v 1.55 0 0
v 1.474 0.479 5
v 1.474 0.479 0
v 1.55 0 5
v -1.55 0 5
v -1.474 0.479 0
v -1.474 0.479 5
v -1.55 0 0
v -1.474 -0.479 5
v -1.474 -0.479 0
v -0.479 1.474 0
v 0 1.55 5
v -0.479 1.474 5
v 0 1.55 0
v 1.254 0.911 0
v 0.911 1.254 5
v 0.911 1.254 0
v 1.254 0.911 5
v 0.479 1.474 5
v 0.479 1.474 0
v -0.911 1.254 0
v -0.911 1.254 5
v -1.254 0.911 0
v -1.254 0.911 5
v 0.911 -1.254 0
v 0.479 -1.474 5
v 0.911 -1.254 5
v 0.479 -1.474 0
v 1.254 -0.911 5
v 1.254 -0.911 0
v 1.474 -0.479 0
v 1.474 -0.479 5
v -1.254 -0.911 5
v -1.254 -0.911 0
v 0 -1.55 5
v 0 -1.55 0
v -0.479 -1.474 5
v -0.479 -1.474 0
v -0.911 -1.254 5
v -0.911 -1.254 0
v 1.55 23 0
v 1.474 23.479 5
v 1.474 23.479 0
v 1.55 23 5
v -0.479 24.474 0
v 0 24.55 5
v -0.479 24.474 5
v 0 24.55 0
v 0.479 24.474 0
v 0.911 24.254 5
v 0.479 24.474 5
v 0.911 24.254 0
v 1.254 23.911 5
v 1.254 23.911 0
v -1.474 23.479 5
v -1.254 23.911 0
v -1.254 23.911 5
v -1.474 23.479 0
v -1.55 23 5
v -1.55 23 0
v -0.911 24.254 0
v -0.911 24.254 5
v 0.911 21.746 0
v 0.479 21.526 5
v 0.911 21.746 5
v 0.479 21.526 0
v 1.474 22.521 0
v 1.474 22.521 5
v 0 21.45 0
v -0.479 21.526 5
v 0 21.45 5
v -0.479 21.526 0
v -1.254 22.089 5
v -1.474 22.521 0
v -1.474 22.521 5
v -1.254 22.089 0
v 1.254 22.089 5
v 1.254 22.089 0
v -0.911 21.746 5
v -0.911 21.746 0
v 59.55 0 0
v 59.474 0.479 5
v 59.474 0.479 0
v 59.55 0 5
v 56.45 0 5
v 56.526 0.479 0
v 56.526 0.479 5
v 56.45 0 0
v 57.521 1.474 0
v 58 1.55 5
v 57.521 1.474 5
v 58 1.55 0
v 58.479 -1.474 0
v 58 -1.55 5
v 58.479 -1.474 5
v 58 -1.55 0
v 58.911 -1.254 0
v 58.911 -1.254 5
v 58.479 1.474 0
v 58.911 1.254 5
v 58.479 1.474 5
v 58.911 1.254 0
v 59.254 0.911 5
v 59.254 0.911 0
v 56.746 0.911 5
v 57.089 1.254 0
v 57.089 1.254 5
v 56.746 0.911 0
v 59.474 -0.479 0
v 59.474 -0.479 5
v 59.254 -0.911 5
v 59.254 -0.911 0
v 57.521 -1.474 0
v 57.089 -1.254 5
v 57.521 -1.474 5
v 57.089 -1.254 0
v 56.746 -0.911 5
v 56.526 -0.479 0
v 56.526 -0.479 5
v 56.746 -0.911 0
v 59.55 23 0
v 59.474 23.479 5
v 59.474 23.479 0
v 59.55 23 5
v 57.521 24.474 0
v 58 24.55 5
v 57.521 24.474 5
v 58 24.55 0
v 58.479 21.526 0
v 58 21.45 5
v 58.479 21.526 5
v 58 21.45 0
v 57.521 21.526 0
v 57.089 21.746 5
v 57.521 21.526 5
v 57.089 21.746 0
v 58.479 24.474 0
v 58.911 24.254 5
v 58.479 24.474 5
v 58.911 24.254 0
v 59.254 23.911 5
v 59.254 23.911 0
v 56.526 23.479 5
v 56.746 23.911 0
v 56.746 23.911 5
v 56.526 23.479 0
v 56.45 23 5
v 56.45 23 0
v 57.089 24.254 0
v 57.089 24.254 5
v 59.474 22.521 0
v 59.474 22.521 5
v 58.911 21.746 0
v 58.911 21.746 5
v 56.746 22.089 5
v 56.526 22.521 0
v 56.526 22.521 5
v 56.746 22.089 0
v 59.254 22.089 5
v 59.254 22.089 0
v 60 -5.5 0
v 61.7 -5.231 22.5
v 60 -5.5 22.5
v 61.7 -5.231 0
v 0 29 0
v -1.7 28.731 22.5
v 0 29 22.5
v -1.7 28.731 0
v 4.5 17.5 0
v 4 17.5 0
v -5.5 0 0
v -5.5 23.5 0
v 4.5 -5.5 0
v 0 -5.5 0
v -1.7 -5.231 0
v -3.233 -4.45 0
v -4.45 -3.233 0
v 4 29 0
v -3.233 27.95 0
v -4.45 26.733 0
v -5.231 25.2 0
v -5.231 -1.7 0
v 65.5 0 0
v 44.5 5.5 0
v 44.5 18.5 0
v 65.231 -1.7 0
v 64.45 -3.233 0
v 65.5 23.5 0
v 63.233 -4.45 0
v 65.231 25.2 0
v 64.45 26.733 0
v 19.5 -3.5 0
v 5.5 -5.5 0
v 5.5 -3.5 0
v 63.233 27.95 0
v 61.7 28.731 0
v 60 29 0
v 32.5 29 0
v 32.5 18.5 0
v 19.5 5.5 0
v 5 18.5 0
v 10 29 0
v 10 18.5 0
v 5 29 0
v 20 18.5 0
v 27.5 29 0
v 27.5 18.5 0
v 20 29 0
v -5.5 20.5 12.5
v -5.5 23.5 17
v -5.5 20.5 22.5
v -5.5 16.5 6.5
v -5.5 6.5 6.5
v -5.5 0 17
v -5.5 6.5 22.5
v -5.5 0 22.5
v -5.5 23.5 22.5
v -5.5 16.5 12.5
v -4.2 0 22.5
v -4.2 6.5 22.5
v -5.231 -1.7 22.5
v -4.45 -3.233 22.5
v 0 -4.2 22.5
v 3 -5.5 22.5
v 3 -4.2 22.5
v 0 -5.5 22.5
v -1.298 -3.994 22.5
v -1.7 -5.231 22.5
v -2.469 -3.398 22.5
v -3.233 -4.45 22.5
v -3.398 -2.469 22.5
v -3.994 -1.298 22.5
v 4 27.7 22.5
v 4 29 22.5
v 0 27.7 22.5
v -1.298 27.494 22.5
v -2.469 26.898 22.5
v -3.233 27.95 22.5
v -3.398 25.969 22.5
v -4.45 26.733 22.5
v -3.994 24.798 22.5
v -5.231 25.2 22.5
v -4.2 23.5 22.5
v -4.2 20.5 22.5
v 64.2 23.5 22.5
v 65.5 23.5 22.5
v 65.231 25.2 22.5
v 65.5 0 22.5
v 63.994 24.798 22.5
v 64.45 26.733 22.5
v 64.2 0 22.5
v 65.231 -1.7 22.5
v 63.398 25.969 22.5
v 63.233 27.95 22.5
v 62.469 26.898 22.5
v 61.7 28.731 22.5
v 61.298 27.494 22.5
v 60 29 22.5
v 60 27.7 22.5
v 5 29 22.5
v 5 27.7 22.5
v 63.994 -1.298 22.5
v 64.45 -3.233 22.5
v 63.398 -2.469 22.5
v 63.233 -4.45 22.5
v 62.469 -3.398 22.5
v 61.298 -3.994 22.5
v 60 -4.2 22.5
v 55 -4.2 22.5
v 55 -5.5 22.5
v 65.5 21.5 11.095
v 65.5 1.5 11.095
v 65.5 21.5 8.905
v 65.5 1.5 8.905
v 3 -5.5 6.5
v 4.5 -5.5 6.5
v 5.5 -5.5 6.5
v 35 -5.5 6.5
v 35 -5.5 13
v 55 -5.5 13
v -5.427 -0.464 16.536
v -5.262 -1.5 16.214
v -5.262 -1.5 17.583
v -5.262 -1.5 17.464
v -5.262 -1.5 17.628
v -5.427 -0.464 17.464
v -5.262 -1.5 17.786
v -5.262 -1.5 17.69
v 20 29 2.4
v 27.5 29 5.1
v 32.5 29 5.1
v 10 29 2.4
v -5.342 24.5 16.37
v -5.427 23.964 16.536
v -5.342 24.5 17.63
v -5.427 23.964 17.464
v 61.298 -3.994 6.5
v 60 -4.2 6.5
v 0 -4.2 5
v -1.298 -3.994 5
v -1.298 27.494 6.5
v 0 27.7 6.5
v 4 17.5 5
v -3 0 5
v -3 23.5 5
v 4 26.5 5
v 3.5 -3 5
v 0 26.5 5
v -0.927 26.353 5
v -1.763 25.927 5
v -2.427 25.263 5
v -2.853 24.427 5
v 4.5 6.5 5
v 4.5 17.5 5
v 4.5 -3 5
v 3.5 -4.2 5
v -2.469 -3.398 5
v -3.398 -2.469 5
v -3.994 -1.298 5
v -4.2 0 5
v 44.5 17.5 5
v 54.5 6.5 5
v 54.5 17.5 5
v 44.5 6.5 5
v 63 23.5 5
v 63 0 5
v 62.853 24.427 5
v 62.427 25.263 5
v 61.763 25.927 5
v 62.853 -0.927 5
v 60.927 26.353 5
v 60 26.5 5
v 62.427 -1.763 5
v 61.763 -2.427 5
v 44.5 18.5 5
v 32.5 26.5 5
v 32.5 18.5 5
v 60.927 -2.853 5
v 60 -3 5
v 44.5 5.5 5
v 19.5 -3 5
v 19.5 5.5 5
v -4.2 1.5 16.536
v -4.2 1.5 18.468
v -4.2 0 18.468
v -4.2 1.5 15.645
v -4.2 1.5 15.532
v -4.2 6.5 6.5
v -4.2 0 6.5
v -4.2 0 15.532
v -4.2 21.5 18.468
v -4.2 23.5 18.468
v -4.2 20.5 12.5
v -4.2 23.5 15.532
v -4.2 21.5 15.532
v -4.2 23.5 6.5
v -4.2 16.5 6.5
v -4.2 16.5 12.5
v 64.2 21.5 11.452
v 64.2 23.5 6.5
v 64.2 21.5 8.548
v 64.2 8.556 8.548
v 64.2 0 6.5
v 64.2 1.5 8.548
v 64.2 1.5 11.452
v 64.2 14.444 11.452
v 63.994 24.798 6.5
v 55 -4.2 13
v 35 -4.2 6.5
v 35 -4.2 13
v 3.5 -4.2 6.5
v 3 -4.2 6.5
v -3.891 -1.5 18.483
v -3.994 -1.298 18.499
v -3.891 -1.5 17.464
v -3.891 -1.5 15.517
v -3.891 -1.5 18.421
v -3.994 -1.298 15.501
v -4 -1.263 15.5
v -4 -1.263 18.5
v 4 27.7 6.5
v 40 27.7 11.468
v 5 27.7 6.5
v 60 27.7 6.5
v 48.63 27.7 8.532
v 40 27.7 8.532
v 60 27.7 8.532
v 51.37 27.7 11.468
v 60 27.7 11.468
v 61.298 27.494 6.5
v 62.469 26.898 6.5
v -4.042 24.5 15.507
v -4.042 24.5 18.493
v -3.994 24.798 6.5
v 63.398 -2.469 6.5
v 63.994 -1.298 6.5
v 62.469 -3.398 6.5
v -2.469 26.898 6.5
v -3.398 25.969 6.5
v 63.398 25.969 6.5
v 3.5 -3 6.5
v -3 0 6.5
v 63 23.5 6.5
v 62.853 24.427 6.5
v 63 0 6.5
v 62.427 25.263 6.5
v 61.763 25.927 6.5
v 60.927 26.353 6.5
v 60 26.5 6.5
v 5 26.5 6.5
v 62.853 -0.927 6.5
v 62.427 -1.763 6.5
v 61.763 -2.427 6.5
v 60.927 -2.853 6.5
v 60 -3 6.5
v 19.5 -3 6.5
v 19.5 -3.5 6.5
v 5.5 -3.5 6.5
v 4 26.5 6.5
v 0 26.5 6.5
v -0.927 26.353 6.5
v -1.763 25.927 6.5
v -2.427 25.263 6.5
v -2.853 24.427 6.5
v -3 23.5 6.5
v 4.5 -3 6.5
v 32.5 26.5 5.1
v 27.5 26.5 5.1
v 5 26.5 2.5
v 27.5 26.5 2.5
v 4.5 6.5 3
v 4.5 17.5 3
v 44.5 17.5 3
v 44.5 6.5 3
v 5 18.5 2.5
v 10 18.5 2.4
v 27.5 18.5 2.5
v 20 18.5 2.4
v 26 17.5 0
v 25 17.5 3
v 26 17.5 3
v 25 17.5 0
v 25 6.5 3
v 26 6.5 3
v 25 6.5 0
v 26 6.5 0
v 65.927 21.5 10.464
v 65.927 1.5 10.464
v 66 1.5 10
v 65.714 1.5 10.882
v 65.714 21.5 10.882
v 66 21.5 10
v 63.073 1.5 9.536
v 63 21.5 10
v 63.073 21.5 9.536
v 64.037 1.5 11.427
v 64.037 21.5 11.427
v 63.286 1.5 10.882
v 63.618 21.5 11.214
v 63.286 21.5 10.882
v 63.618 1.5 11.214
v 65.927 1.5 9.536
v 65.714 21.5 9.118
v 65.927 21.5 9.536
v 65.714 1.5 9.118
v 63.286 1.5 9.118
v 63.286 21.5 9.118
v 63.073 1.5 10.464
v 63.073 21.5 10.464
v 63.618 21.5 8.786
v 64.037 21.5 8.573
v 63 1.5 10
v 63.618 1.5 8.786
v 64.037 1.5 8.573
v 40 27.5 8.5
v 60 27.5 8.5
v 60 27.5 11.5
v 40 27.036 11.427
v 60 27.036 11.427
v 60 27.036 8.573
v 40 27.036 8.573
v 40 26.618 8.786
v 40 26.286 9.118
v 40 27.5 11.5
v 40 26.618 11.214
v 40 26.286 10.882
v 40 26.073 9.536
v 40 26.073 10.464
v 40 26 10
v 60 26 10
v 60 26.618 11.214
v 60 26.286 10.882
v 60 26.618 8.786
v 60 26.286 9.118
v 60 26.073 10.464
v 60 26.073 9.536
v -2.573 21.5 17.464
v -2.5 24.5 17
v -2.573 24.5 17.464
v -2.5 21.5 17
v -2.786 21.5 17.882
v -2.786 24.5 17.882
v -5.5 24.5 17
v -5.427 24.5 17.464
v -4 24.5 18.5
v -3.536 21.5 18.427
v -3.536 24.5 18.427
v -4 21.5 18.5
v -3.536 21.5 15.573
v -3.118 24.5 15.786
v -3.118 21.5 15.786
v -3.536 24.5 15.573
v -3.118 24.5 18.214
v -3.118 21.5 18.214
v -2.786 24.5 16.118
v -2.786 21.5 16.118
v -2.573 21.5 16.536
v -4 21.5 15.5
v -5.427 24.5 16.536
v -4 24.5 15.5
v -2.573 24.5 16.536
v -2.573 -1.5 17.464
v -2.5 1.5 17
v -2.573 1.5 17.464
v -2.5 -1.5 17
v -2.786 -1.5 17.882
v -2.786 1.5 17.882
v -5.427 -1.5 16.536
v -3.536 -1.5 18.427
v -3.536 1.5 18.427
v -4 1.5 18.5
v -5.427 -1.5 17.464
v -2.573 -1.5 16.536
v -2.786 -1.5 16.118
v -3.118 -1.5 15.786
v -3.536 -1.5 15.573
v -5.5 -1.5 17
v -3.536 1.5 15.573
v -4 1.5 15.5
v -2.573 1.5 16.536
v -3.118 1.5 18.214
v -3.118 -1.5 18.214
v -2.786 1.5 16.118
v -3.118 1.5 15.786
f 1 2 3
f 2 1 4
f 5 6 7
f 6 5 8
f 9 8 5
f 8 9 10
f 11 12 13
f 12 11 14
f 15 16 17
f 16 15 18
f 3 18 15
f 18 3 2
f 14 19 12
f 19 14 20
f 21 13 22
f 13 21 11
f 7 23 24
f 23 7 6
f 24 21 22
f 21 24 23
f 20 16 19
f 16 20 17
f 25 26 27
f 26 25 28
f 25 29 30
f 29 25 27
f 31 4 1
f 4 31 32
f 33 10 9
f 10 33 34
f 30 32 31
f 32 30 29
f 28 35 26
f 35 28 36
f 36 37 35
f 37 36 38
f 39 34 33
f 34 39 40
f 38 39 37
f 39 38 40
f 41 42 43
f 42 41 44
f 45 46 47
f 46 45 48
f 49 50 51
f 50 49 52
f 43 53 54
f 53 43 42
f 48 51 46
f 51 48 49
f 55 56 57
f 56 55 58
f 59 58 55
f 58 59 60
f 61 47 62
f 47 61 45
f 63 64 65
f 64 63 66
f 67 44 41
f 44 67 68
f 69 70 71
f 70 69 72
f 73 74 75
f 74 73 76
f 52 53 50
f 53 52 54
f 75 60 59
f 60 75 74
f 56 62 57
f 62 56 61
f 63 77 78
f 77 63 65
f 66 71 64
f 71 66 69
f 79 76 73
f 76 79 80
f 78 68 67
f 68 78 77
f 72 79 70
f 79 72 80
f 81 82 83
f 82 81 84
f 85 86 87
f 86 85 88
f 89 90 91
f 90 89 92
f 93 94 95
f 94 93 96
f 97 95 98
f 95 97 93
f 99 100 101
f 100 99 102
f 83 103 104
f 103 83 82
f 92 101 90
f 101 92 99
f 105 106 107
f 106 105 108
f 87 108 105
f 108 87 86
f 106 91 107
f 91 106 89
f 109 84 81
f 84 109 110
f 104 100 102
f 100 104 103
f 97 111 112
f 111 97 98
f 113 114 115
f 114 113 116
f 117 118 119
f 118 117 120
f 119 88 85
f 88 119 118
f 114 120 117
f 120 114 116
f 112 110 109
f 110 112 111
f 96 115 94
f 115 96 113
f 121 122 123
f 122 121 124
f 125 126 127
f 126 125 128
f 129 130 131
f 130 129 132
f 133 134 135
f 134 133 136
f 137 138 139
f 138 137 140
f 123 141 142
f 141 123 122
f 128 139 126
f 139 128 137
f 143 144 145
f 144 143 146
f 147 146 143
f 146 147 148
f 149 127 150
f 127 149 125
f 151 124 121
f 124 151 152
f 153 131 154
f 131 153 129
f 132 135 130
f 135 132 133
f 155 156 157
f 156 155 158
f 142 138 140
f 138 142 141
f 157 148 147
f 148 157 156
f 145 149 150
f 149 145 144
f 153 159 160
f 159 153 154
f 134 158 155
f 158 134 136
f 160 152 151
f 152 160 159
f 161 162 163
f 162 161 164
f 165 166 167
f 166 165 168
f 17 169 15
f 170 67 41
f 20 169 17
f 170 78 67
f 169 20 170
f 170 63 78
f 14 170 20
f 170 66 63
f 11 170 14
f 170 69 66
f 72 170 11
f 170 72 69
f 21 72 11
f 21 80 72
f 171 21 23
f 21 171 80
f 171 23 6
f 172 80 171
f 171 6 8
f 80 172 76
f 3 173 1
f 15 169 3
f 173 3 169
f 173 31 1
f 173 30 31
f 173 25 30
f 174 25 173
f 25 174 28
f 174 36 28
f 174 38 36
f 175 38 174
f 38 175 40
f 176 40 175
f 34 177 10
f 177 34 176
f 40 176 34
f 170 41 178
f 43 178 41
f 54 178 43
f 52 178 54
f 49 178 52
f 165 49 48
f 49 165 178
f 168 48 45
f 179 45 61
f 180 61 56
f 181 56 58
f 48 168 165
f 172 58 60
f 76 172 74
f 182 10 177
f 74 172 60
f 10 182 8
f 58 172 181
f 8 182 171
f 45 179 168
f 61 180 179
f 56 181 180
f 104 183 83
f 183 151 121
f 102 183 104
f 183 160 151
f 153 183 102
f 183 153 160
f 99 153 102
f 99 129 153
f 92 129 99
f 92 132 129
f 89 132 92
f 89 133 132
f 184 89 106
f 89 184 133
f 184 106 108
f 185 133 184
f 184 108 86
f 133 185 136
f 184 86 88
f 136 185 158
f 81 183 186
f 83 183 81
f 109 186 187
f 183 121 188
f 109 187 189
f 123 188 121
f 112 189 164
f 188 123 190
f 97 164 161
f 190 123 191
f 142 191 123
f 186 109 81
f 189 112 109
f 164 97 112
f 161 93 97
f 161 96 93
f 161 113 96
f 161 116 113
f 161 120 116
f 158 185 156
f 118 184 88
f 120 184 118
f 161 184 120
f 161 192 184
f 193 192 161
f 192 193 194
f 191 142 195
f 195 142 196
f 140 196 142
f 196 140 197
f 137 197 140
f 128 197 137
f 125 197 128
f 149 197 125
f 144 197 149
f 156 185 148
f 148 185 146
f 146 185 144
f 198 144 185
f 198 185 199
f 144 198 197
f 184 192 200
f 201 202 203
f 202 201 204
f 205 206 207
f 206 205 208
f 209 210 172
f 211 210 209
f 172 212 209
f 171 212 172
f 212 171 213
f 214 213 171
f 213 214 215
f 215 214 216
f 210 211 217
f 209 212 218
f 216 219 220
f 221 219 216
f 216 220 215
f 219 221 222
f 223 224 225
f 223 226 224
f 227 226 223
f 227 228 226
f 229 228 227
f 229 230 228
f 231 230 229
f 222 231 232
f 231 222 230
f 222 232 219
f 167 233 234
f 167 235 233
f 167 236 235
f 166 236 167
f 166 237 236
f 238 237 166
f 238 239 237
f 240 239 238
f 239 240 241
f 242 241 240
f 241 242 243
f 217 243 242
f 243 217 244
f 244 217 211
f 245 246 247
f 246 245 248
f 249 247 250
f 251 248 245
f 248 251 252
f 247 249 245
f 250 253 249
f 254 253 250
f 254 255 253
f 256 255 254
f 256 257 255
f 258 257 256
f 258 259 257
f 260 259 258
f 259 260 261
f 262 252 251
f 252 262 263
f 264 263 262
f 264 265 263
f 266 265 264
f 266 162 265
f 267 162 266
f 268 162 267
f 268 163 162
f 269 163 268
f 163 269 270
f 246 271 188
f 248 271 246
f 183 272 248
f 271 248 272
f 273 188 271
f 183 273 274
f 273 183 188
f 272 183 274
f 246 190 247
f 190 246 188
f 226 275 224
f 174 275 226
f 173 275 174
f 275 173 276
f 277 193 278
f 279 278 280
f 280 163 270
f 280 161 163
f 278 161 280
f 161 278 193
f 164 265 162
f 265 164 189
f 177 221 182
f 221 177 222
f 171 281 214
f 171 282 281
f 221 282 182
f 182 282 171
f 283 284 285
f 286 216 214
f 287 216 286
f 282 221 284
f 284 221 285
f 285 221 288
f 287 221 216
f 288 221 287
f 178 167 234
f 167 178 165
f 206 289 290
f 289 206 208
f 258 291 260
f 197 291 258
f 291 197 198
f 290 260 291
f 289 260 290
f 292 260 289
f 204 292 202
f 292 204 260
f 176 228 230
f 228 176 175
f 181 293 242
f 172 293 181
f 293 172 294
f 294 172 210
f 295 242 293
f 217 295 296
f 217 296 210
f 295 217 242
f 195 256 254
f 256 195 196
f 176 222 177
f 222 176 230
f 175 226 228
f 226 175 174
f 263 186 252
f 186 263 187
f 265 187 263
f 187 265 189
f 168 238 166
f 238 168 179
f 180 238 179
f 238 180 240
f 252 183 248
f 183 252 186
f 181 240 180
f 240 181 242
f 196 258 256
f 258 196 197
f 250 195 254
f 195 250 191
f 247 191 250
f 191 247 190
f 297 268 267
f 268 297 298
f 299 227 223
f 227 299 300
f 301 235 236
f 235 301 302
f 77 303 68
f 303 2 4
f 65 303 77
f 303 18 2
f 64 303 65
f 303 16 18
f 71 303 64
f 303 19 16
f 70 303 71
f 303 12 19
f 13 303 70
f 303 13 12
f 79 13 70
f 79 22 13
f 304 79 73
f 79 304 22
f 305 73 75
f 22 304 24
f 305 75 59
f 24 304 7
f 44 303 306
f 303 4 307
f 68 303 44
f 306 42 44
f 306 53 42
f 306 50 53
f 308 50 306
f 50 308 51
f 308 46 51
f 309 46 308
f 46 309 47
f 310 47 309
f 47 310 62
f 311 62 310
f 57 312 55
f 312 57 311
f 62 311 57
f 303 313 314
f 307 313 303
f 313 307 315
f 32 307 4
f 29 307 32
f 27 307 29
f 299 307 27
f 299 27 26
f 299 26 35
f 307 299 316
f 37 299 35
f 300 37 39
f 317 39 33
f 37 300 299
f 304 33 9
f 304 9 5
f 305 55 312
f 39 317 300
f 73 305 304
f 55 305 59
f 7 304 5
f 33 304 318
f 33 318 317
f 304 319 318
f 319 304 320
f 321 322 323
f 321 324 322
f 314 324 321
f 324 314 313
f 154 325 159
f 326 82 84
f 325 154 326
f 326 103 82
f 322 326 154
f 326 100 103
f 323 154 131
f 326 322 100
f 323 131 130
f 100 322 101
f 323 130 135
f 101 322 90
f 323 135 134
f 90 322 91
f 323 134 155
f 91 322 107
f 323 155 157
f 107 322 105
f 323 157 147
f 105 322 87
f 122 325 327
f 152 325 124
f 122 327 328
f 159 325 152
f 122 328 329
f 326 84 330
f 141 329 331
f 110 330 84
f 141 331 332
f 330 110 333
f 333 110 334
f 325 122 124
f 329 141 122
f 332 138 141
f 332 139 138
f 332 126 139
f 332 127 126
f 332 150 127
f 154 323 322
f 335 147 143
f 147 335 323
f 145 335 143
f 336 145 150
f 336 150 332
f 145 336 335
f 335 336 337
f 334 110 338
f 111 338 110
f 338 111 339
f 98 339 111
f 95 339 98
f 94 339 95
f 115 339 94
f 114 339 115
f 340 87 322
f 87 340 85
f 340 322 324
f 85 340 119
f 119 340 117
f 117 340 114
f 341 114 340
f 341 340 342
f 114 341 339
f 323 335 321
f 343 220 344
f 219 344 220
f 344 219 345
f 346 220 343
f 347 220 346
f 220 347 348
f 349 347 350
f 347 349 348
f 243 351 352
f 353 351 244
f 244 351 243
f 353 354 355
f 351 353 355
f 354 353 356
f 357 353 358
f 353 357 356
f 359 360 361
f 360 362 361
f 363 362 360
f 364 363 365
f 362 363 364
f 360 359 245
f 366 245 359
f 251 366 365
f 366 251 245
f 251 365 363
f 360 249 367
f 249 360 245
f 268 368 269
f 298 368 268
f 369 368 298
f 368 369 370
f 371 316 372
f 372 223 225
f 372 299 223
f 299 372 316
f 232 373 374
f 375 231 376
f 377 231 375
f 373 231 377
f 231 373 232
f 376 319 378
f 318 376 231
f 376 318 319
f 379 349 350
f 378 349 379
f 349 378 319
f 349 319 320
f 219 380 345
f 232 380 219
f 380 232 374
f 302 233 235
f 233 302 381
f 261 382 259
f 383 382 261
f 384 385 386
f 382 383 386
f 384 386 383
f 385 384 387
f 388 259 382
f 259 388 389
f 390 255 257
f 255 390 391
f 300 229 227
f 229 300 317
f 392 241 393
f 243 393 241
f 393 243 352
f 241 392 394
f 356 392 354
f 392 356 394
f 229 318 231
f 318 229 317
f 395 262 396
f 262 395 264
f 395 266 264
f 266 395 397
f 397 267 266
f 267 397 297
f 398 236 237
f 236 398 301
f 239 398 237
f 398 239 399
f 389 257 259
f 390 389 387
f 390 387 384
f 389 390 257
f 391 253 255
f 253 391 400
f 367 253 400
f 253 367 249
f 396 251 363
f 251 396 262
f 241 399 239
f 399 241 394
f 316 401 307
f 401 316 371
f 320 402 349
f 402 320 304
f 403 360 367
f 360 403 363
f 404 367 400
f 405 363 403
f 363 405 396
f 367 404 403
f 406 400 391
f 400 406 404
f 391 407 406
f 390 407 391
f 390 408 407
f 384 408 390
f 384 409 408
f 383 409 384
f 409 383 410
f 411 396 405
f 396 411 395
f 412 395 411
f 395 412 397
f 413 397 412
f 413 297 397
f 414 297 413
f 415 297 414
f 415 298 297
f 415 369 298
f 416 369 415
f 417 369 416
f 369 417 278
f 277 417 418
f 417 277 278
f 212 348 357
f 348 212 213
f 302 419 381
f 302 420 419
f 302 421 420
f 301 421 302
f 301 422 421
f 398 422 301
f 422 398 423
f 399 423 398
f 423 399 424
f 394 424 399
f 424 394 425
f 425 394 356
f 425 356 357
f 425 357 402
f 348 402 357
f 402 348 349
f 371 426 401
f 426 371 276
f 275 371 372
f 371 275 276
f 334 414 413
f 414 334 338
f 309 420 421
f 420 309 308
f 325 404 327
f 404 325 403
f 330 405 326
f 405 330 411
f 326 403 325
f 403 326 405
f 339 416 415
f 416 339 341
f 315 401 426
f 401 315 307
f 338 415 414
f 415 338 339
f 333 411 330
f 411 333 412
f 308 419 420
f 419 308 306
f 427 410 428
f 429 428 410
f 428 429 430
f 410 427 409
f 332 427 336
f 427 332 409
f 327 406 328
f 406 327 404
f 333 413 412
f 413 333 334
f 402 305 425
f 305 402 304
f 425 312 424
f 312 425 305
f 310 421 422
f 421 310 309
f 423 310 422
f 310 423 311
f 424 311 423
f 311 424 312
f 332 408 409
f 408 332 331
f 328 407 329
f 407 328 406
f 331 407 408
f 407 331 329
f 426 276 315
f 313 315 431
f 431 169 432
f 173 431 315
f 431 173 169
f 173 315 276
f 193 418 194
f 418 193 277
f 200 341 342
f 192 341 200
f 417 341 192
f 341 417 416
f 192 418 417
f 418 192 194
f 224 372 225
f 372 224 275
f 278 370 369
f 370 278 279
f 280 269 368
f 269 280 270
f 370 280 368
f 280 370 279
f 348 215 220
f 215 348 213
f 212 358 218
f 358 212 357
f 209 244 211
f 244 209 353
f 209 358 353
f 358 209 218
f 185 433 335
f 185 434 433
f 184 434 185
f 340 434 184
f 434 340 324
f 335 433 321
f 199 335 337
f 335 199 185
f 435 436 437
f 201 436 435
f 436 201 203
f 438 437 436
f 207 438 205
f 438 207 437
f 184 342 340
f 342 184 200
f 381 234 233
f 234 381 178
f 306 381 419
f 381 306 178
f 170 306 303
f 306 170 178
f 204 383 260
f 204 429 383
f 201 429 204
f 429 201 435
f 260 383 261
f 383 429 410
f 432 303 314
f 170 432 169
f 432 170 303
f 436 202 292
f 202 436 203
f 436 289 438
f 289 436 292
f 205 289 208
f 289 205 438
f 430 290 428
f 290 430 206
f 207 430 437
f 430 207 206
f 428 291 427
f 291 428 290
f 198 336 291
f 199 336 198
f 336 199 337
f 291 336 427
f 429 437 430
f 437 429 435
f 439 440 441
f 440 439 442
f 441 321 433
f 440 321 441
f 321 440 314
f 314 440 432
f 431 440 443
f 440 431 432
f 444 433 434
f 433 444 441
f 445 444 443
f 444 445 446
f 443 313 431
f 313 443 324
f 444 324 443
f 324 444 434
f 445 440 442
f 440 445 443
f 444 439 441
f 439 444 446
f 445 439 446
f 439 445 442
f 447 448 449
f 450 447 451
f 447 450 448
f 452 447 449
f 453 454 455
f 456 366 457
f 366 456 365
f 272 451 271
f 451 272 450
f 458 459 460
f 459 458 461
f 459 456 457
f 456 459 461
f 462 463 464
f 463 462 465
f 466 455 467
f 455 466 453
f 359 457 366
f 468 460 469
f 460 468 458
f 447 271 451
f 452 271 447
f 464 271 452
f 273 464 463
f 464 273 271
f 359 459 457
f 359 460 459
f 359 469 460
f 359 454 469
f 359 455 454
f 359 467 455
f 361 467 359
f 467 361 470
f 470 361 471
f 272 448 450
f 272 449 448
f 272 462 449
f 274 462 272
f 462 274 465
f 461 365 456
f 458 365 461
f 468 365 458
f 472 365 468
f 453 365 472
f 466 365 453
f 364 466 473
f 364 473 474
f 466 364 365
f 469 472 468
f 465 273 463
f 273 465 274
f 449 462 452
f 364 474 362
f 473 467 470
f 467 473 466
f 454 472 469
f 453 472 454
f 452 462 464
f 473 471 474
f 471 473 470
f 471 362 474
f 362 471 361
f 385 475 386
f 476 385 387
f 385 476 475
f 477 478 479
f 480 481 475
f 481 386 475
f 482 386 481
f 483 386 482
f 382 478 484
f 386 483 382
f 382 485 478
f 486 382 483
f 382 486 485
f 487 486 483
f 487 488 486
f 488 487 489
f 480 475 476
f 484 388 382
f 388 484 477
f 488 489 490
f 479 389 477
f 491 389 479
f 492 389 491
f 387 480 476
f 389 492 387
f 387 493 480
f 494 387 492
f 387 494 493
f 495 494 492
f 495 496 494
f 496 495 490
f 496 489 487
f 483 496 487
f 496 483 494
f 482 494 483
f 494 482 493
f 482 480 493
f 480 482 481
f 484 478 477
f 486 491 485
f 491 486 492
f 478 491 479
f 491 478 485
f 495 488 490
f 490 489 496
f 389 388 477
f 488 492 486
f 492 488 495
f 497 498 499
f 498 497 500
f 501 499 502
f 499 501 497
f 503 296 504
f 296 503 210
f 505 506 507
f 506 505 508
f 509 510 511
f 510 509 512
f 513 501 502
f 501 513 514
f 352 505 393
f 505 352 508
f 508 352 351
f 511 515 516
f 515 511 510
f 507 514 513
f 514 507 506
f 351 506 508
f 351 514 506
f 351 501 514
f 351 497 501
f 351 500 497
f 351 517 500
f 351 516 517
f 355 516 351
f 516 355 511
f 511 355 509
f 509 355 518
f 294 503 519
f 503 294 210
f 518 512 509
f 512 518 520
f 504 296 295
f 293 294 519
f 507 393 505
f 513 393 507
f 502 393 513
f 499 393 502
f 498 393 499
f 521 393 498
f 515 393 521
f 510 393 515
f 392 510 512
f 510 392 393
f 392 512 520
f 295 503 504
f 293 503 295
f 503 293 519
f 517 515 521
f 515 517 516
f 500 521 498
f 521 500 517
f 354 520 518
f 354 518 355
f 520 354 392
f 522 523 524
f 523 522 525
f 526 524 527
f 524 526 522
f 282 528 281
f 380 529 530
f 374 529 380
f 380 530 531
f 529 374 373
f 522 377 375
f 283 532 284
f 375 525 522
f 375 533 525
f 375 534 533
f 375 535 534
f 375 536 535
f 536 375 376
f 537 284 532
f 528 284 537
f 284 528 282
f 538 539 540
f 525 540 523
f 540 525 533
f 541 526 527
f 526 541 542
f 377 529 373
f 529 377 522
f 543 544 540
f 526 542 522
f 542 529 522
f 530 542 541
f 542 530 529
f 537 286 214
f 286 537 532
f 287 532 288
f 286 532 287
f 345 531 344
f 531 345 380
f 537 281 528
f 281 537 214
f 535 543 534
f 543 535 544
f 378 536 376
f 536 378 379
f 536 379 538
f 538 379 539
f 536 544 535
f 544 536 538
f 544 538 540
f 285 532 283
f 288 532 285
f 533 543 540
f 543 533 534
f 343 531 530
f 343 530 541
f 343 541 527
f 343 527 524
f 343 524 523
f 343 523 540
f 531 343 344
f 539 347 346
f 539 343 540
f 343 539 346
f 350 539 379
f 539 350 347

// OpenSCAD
$fn=20;
// Openscad Raspberry Pi Zero W Test Controller Top (Programmer)
// Author: Brian Khuu 2019
// Note: Dimentions based on https://blog.protoneer.co.nz/raspberry-pi-zero-footprint-dimensions/

module rpi_zero_bulk(h_mm, outset, cutout = false)
{
  header_tol = 1;
  hole_tol = 0.1;

  difference()
  {
    union()
    {
      hull()
      {
        translate([0,0,0])
          cylinder(r=3.5+outset,h=h_mm);
        translate([0,23.5,0])
          cylinder(r=3.5+outset,h=h_mm);
        translate([58+2,0,0])
          cylinder(r=3.5+outset,h=h_mm);
        translate([58+2,23.5,0])
          cylinder(r=3.5+outset,h=h_mm);
      }
    }

    if (cutout)
    {
        // M3 holes = 2.75
        holedia = 3+hole_tol;
        
        // Header
        //translate([29,23,+h_mm/2])
        //  cube([51+header_tol,5+header_tol,h_mm+0.1], center=true);
        
        // Holes
        translate([0,0,-1])
          cylinder(r=((holedia)/2),h=h_mm+2);
        translate([0,23,-1])
          cylinder(r=((holedia)/2),h=h_mm+2);
        translate([58,0,-1])
          cylinder(r=((holedia)/2),h=h_mm+2);
        translate([58,23,-1])
          cylinder(r=((holedia)/2),h=h_mm+2);
    }
  }
}

module rpi_zero_hat_case()
{
  base_mm = 5;
  side_wall_mm = 16;
    
  pcb_h = 2;
  pcb_standoff = 1.5;
  
    // align hole
    if (0)
    {
        translate([0,0,base_mm])
        {
            xhole_tol = -0.9;
            xh_mm = 3;
            xdia = 1.8;
            translate([0,0,-1])
              cylinder(r=((xdia)/2),h=xh_mm+2);
            translate([0,23,-1])
              cylinder(r=((xdia)/2),h=xh_mm+2);
            translate([58,0,-1])
              cylinder(r=((xdia)/2),h=xh_mm+2);
            translate([58,23,-1])
              cylinder(r=((xdia)/2),h=xh_mm+2);
        }
    }

  difference()
  {
    rpi_zero_bulk(base_mm+pcb_standoff+side_wall_mm, 2, true); // Main Bulk
    
    translate([0,0,base_mm+pcb_standoff]) 
      rpi_zero_bulk(side_wall_mm+4, 0.7); // Inner Hollow For Electronics
    
    // pcb ledge
    translate([0,0,base_mm]) 
      rpi_zero_bulk(side_wall_mm+4, -0.5);
    difference()
    {
        translate([0,0,base_mm]) 
          rpi_zero_bulk(side_wall_mm+4, 0.7); // Inner Hollow For Electronics
        translate([3.5,-50,-0.1])
          cube([100,100,20]);
        translate([-10,-0,-0.1])
          cube([100,50,20]);
    }
      
      
    // Programmer Wire
    translate([5,0,5])
      cube([1,12,2*base_mm+0.4], center=true);
    translate([12,1.5,5])
      cube([15,10,2*base_mm+0.4], center=true);

    // Front Interface
    translate([3,-10,base_mm+pcb_standoff])
      cube([32,10,20]);
    translate([3,-10,base_mm+8])
      cube([52,10,20]);

    // Side Interface
    translate([-5,23/2,base_mm+pcb_standoff+10])
      cube([10,10,20], center=true); // Cutout for side usb
    translate([-5,23/2+4,base_mm+pcb_standoff+6+10])
      cube([10,10,20], center=true); // Cutout for SD card on rpizero
     
    // Bendy bit cutout
    translate([4.5,23/2-6,-0.1])
      cube([40,13,6]);

    // Back Prog
    translate([4,17.5,-0.1])
      cube([1,15,40]);
    translate([10,23/2+6.5,-0.1])
        cube([10,20,base_mm/2]);

    // Power Cable
    translate([30-5/2,23/2+6.5,-0.1])
        cube([5,20,base_mm+0.2]);
    translate([4,23/2+6,base_mm/2])
        cube([25,9,base_mm+pcb_standoff+0.2]);
  }
  
  // Bendy bit cutout
  translate([4.5,23/2-5,base_mm-2])
    cube([50,11,2]);
  translate([25,23/2-5,0])
    cube([1,11,base_mm]);
  
  // PCB Clip
  translate([60+4.5,23/2,base_mm+pcb_standoff+pcb_h+1.5])
    rotate([90,0,0])
    cylinder(r=1.5, h=20, center= true);
  
  translate([50,23+4.5,base_mm+pcb_standoff+pcb_h+1.5])
    rotate([0,90,0])
    cylinder(r=1.5, h=20, center= true);
  
  translate([-4,23,base_mm+pcb_standoff+pcb_h+1.5+7])
    rotate([90,0,0])
    cylinder(r=1.5, h=3, center= true);
  
  translate([-4,0,base_mm+pcb_standoff+pcb_h+1.5+7])
    rotate([90,0,0])
    cylinder(r=1.5, h=3, center= true);
  
  //%translate([0,0,base_mm+pcb_standoff]) rpi_zero_bulk(pcb_h, 0); // programmer
  //%translate([0,0,base_mm+pcb_standoff+7]) rpi_zero_bulk(pcb_h, 0); // rpizero
}


rpi_zero_hat_case();
